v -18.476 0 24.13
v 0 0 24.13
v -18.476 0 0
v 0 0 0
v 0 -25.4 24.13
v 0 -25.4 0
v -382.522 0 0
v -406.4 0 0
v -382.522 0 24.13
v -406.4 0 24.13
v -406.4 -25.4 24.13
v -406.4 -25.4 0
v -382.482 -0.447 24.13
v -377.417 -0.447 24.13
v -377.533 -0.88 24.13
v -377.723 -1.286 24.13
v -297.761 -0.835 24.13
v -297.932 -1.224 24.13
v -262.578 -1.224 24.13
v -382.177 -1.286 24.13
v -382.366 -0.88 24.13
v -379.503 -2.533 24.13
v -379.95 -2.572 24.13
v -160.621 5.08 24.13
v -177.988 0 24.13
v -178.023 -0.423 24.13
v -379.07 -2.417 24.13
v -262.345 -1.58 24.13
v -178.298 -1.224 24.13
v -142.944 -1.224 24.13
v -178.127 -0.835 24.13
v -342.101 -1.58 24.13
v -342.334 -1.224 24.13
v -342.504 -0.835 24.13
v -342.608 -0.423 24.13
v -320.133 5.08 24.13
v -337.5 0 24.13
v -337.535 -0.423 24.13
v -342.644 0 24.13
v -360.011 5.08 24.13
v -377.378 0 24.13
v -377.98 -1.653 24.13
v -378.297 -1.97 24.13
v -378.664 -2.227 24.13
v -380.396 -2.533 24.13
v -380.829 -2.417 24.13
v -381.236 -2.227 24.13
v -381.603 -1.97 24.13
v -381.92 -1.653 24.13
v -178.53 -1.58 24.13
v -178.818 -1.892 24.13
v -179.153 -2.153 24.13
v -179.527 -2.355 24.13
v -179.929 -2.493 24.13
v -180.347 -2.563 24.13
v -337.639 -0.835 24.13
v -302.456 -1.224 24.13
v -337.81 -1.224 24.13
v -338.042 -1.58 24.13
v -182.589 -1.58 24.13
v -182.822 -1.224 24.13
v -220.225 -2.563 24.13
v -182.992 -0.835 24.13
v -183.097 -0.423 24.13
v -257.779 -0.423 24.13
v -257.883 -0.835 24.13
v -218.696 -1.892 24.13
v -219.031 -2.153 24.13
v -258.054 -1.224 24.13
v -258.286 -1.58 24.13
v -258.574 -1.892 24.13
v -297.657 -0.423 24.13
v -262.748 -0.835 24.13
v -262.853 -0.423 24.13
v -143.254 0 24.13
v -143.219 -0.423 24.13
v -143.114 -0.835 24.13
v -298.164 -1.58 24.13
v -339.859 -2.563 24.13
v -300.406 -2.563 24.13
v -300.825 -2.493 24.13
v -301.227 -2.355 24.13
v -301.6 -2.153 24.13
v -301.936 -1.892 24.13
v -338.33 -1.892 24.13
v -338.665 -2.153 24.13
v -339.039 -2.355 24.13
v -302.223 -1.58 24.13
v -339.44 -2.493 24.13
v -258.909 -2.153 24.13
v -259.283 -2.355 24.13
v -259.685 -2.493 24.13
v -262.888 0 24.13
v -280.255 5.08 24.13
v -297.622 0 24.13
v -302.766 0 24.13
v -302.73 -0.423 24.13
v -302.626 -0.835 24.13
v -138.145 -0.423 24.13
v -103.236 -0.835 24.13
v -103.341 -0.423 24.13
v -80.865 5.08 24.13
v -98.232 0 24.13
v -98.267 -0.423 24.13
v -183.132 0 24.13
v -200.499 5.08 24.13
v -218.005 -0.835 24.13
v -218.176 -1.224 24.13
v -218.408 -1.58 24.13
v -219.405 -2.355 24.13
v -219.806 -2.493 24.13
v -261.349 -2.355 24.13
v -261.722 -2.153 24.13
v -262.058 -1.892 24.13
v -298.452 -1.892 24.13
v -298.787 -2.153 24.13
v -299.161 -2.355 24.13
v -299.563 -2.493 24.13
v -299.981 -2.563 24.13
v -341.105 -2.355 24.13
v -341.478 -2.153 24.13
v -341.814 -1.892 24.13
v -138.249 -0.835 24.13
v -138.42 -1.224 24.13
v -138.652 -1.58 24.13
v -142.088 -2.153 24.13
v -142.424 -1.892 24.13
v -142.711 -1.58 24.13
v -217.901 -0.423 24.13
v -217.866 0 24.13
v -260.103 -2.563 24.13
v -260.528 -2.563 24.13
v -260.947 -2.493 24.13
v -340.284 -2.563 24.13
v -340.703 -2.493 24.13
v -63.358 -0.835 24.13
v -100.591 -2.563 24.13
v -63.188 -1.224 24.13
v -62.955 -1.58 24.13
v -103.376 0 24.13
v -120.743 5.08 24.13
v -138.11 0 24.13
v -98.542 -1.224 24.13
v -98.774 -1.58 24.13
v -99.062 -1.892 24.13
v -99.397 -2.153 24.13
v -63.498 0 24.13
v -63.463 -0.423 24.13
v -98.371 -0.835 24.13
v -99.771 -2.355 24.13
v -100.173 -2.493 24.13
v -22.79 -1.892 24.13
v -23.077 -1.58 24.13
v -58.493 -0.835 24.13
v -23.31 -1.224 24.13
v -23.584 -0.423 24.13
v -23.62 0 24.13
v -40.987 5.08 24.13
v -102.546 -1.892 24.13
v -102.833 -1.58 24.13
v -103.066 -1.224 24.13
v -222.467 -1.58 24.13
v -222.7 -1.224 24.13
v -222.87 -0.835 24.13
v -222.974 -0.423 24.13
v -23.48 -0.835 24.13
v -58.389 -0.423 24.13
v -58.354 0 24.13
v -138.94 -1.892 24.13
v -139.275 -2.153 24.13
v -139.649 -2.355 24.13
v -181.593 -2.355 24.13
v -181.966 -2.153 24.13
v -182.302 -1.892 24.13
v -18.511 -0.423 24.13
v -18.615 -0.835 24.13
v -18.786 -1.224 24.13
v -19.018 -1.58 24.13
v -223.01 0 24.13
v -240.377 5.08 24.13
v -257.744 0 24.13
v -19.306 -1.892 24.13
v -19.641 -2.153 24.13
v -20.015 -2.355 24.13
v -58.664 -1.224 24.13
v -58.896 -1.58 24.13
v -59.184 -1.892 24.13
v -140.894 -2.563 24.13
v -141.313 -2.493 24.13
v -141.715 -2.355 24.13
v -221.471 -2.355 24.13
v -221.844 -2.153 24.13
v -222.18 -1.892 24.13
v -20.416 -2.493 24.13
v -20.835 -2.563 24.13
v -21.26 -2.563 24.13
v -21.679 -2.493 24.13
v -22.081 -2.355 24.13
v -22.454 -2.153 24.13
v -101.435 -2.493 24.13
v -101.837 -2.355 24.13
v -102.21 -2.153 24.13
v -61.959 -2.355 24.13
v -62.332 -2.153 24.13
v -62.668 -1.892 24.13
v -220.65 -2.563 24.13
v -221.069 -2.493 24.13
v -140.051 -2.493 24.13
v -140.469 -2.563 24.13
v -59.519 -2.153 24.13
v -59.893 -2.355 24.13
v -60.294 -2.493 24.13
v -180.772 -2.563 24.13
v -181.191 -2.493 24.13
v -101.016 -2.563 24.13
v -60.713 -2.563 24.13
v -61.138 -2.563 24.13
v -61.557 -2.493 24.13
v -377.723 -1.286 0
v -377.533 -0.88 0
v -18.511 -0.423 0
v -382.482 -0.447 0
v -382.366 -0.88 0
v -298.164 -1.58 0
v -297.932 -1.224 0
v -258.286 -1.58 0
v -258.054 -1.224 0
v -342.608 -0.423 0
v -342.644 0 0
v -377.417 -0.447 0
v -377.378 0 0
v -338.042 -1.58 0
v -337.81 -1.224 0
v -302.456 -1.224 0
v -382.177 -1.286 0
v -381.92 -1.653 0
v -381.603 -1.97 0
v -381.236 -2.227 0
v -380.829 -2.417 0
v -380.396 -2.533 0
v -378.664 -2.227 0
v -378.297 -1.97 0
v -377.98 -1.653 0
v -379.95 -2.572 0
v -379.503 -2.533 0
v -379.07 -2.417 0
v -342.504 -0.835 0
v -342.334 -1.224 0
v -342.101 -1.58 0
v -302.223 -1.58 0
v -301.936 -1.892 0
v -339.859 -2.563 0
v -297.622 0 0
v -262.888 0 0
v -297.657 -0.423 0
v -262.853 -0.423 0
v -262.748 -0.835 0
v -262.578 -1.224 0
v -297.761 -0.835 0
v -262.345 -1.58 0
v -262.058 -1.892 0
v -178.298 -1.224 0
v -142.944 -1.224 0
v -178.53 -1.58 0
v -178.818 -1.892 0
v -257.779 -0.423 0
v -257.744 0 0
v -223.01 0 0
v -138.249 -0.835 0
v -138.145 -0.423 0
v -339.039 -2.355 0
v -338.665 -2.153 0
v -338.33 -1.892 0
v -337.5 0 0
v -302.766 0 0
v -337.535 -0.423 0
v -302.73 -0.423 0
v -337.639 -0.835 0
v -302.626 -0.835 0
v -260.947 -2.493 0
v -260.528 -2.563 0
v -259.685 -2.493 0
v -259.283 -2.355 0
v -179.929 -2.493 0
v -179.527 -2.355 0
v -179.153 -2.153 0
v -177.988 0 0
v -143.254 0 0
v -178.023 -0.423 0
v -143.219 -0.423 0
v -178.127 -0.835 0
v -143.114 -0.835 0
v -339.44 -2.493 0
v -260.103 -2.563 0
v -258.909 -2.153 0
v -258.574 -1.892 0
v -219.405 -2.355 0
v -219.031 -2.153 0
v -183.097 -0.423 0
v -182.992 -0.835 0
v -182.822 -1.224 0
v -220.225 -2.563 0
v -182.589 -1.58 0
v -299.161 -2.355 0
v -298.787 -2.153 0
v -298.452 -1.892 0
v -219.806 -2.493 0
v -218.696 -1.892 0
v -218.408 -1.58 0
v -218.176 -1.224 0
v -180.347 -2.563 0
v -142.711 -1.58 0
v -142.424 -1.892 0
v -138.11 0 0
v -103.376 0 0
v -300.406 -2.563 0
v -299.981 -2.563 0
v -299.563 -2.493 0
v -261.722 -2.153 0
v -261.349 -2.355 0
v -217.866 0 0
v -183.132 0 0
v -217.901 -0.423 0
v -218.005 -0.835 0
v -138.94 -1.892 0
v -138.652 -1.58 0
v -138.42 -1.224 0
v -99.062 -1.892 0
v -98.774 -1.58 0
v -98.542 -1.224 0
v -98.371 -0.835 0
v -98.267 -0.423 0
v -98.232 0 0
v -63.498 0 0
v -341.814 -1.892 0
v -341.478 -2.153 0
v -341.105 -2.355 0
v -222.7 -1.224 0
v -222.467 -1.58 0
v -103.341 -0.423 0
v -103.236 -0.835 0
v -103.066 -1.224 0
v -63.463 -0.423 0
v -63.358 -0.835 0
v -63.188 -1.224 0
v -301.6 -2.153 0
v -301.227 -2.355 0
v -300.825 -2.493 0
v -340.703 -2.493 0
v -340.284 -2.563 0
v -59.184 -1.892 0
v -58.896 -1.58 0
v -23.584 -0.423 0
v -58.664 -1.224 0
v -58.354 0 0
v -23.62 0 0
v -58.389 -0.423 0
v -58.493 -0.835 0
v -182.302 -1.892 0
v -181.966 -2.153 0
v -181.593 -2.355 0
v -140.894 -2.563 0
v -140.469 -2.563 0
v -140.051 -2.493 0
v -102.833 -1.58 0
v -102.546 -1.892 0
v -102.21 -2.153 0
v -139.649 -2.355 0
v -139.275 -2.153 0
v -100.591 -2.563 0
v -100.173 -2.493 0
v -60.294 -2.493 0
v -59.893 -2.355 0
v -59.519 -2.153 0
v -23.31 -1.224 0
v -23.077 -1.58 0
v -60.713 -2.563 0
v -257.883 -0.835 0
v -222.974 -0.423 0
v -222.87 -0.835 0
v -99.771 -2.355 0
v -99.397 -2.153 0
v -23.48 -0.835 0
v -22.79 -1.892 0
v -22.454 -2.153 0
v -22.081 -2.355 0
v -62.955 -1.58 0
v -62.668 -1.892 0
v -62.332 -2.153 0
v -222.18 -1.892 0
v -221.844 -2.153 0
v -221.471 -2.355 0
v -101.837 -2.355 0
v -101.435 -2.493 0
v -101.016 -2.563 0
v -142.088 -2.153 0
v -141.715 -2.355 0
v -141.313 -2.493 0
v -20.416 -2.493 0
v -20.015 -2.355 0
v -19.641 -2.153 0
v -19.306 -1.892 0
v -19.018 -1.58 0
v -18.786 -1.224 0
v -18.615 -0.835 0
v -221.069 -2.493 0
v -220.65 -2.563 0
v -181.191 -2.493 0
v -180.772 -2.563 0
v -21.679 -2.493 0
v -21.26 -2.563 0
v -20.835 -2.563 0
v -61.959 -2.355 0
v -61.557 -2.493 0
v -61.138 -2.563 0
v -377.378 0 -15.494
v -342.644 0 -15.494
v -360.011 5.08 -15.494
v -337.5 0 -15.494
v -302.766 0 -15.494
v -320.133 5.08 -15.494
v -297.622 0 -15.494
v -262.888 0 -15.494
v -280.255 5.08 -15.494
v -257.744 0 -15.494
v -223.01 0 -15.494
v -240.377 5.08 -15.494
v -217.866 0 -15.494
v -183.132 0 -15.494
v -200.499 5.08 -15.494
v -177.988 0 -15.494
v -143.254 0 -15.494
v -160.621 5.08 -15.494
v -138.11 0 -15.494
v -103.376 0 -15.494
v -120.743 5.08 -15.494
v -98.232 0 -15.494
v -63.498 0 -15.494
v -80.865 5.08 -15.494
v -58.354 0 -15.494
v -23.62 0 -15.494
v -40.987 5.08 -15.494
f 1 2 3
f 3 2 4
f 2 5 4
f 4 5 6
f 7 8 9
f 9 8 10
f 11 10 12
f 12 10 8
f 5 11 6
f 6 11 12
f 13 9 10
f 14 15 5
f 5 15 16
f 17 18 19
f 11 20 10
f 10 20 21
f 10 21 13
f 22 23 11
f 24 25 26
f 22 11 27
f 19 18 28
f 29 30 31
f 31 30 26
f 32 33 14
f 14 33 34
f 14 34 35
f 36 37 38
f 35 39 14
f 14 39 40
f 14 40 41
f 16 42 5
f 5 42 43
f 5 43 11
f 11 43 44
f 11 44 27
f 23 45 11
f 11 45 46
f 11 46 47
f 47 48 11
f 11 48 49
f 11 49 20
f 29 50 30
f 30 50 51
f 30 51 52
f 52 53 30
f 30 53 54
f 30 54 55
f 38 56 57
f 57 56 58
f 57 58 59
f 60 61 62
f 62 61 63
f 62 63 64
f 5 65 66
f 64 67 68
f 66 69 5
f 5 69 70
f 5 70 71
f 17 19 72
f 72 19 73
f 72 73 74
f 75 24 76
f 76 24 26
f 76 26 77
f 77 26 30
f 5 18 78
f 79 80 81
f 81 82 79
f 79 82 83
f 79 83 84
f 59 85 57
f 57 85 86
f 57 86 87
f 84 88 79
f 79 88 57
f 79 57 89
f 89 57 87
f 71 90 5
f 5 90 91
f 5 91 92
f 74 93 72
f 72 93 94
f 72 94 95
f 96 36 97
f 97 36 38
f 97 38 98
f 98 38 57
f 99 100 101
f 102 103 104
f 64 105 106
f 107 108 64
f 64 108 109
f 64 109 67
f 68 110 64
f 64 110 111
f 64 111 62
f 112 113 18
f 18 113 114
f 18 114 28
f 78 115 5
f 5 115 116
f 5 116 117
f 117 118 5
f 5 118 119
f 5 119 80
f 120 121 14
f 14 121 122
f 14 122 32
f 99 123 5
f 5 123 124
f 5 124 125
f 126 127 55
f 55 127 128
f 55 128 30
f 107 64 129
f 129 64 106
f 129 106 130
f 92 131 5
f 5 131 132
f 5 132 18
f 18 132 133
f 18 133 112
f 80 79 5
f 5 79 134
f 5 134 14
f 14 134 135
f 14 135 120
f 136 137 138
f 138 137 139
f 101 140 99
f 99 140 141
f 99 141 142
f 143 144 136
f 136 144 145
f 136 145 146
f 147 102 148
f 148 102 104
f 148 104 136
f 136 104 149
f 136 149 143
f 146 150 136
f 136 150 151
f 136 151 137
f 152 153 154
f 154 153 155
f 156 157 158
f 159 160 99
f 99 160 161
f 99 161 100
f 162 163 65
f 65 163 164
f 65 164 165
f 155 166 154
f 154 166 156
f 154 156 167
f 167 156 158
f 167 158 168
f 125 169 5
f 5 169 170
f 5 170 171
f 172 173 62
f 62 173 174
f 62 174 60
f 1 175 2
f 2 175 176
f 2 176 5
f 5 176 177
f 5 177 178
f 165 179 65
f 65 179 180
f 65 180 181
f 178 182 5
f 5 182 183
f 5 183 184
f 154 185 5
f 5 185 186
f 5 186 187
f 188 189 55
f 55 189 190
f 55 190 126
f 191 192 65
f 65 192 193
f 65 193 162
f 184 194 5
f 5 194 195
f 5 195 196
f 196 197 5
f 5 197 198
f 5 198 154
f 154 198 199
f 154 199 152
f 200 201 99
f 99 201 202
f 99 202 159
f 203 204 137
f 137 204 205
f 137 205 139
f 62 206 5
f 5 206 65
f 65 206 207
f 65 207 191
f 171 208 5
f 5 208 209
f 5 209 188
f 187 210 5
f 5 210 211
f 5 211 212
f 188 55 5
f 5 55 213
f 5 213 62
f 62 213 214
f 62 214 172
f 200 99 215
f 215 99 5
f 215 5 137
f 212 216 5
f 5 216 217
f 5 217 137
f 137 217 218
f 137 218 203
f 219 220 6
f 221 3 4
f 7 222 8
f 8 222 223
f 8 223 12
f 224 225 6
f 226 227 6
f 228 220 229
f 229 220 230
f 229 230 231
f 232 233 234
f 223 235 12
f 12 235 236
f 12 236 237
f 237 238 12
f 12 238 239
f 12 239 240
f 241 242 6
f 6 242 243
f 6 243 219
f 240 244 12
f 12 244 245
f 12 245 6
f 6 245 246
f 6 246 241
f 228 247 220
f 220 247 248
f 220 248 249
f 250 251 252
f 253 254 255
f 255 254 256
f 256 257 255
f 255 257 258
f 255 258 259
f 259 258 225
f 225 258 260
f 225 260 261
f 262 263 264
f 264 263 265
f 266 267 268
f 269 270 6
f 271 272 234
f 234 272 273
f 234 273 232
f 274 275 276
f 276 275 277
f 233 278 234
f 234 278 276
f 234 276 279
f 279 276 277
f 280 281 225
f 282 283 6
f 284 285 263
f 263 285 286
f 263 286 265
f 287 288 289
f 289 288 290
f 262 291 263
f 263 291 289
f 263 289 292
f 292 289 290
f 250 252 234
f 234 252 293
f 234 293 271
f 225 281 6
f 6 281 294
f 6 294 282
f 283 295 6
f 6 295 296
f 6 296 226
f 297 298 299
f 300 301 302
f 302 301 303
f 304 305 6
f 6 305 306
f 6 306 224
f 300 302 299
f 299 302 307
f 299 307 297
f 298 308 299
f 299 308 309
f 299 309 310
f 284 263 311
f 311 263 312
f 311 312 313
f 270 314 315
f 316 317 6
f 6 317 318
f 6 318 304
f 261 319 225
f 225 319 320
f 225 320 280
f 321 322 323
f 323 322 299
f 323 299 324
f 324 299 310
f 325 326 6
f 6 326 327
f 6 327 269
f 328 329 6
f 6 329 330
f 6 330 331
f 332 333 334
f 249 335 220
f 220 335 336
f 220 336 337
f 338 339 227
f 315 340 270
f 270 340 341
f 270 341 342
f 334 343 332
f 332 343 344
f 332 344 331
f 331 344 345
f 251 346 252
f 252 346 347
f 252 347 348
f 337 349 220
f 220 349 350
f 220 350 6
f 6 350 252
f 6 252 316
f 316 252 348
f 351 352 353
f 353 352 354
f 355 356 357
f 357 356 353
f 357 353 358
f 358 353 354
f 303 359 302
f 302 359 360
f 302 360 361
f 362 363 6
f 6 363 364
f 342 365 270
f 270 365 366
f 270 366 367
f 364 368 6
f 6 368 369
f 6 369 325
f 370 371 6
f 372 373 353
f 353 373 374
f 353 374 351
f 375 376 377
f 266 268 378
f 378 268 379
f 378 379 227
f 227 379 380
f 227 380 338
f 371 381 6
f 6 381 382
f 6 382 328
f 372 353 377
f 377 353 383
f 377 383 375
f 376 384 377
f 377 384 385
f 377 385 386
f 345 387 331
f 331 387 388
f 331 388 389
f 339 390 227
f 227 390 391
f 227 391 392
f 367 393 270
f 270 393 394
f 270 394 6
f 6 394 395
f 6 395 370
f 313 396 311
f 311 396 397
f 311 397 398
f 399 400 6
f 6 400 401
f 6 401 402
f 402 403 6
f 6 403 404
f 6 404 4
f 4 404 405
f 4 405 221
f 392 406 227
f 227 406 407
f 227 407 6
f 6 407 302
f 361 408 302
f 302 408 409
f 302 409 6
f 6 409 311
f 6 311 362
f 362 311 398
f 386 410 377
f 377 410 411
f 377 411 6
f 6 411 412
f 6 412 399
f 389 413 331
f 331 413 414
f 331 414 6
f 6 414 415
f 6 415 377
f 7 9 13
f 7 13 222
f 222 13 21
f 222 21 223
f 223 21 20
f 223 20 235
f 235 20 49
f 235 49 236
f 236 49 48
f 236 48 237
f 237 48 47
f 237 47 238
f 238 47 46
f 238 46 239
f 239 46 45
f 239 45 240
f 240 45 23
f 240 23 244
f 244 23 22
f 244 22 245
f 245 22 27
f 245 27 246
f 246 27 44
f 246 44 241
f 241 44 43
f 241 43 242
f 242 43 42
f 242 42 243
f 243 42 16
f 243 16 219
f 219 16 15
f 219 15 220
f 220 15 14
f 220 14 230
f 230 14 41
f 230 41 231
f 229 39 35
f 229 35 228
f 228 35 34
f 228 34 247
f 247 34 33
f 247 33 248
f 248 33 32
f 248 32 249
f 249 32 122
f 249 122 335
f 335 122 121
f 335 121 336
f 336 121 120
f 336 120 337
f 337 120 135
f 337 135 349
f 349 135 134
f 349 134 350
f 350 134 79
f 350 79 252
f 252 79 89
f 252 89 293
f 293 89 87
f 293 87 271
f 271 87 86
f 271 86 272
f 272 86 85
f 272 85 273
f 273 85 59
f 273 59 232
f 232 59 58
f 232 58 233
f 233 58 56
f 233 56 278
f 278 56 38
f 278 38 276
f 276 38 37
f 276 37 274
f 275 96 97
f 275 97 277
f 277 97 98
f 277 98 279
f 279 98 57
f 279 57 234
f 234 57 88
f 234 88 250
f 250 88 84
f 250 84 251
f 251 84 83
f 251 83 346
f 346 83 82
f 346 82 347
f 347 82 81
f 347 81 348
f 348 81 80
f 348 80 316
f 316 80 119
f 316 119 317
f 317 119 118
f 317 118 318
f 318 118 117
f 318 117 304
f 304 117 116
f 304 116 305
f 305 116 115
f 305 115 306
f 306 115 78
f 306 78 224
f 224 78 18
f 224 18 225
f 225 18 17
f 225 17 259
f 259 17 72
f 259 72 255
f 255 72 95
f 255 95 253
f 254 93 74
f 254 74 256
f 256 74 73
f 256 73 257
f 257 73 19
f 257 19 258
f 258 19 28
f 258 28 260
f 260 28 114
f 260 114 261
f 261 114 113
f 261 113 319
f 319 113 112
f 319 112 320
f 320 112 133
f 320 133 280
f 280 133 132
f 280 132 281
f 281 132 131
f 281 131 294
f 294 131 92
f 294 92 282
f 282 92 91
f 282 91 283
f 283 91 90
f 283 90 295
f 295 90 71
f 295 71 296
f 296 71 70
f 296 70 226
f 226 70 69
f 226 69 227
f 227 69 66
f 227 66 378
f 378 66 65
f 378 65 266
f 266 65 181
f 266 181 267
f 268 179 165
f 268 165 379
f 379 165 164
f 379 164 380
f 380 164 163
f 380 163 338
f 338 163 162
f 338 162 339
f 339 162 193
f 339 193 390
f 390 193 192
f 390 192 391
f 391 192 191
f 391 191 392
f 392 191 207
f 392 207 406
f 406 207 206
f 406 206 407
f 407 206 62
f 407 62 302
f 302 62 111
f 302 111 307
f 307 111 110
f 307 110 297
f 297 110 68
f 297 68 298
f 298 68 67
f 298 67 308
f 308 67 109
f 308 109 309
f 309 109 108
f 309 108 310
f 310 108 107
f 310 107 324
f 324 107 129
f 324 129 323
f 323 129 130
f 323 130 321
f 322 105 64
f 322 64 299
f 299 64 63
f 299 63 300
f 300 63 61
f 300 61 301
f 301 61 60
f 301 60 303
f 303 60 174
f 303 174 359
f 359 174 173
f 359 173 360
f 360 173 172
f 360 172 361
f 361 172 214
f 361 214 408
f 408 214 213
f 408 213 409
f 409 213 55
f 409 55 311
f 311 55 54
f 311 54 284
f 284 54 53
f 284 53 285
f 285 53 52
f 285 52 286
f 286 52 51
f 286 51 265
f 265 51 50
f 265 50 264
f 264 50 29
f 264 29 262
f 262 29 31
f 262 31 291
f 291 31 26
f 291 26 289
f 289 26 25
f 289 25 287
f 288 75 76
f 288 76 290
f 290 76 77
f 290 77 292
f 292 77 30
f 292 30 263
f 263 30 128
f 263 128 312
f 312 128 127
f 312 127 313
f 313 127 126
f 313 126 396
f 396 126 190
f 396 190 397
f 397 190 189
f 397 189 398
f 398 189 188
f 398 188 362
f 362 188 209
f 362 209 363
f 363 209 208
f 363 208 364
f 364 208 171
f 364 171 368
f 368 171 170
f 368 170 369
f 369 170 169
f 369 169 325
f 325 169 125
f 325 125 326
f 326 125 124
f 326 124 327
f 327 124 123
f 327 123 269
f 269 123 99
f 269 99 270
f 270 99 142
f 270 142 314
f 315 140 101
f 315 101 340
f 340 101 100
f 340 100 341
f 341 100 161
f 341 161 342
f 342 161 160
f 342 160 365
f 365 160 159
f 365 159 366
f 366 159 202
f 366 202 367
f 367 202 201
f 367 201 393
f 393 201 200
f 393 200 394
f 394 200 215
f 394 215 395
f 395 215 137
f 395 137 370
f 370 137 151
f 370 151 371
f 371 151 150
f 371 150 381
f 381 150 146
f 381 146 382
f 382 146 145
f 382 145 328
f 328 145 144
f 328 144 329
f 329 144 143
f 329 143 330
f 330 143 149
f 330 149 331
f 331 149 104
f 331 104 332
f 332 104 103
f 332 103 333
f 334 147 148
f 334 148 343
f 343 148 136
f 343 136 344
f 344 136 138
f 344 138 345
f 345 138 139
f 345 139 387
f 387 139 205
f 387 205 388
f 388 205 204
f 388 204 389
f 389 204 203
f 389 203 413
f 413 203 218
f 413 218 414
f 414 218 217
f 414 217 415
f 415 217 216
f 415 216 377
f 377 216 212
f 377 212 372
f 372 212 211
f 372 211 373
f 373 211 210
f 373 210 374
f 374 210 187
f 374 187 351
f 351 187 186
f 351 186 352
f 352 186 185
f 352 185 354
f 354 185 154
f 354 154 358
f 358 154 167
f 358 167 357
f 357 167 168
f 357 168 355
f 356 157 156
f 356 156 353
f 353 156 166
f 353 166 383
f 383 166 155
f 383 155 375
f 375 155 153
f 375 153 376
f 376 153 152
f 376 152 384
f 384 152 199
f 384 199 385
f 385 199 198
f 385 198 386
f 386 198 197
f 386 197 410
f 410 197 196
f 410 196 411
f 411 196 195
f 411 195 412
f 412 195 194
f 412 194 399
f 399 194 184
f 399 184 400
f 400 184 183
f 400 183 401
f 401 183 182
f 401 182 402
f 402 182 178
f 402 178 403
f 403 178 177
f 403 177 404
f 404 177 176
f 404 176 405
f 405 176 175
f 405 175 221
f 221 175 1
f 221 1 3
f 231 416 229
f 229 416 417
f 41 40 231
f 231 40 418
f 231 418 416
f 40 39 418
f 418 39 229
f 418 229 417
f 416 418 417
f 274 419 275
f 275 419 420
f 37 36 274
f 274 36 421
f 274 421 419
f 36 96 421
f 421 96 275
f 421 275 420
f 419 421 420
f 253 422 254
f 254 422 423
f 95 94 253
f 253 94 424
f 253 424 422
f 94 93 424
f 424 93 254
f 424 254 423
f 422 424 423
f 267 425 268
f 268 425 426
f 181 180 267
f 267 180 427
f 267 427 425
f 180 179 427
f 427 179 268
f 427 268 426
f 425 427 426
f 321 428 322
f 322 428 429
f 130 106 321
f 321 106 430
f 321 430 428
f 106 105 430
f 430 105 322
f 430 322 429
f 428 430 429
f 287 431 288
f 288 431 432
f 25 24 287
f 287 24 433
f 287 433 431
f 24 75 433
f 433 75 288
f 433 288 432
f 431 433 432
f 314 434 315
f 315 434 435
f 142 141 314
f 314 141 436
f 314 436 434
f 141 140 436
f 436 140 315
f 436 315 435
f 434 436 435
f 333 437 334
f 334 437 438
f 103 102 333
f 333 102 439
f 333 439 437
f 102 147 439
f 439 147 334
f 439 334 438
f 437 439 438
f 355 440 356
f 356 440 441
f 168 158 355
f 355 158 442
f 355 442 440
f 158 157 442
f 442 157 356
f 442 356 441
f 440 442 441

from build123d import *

# Parameters (mm, degrees)
SKETCH1_W           = 406.4
SKETCH1_H           = 25.4
BOSS_EXTRUDE1_DEPTH = 24.13
SKETCH3_R           = 2.57175
CUT_EXTRUDE1_DEPTH  = 39.624
BOSS_EXTRUDE2_DEPTH = 39.624


with BuildPart() as part:
    # Sketch1 → Boss-Extrude1 (new body)
    with BuildSketch(Plane.XY):
        with Locations((-203.2, -12.7)):
            Rectangle(SKETCH1_W, SKETCH1_H)
    extrude(amount=BOSS_EXTRUDE1_DEPTH)

    # Sketch3 → Cut-Extrude1 (cut)
    with BuildSketch(Plane.XY.offset(24.13)):
        with Locations((-379.949777658, 0)):
            Circle(SKETCH3_R)
        with Locations((-340.071777658, 0)):
            Circle(SKETCH3_R)
        with Locations((-300.193777658, 0)):
            Circle(SKETCH3_R)
        with Locations((-260.315777658, 0)):
            Circle(SKETCH3_R)
        with Locations((-220.437777658, 0)):
            Circle(SKETCH3_R)
        with Locations((-180.559777658, 0)):
            Circle(SKETCH3_R)
        with Locations((-140.681777658, 0)):
            Circle(SKETCH3_R)
        with Locations((-100.803777658, 0)):
            Circle(SKETCH3_R)
        with Locations((-60.925777658, 0)):
            Circle(SKETCH3_R)
        with Locations((-21.047777658, 0)):
            Circle(SKETCH3_R)
    extrude(amount=-CUT_EXTRUDE1_DEPTH, mode=Mode.SUBTRACT)

    # Sketch4 → Boss-Extrude2 (add)
    with BuildSketch(Plane.XY.offset(24.13)):
        Polygon((-377.378027658, 0), (-360.010777658, 5.08), (-342.643527658, 0), align=None)
        Polygon((-337.500027658, 0), (-320.132777658, 5.08), (-302.765527658, 0), align=None)
        Polygon((-297.622027658, 0), (-280.254777658, 5.08), (-262.887527658, 0), align=None)
        Polygon((-257.744027658, 0), (-240.376777658, 5.08), (-223.009527658, 0), align=None)
        Polygon((-217.866027658, 0), (-200.498777658, 5.08), (-183.131527658, 0), align=None)
        Polygon((-177.988027658, 0), (-160.620777658, 5.08), (-143.253527658, 0), align=None)
        Polygon((-138.110027658, 0), (-120.742777658, 5.08), (-103.375527658, 0), align=None)
        Polygon((-98.232027658, 0), (-80.864777658, 5.08), (-63.497527658, 0), align=None)
        Polygon((-58.354027658, 0), (-40.986777658, 5.08), (-23.619527658, 0), align=None)
    extrude(amount=-BOSS_EXTRUDE2_DEPTH)


solid = part.part
